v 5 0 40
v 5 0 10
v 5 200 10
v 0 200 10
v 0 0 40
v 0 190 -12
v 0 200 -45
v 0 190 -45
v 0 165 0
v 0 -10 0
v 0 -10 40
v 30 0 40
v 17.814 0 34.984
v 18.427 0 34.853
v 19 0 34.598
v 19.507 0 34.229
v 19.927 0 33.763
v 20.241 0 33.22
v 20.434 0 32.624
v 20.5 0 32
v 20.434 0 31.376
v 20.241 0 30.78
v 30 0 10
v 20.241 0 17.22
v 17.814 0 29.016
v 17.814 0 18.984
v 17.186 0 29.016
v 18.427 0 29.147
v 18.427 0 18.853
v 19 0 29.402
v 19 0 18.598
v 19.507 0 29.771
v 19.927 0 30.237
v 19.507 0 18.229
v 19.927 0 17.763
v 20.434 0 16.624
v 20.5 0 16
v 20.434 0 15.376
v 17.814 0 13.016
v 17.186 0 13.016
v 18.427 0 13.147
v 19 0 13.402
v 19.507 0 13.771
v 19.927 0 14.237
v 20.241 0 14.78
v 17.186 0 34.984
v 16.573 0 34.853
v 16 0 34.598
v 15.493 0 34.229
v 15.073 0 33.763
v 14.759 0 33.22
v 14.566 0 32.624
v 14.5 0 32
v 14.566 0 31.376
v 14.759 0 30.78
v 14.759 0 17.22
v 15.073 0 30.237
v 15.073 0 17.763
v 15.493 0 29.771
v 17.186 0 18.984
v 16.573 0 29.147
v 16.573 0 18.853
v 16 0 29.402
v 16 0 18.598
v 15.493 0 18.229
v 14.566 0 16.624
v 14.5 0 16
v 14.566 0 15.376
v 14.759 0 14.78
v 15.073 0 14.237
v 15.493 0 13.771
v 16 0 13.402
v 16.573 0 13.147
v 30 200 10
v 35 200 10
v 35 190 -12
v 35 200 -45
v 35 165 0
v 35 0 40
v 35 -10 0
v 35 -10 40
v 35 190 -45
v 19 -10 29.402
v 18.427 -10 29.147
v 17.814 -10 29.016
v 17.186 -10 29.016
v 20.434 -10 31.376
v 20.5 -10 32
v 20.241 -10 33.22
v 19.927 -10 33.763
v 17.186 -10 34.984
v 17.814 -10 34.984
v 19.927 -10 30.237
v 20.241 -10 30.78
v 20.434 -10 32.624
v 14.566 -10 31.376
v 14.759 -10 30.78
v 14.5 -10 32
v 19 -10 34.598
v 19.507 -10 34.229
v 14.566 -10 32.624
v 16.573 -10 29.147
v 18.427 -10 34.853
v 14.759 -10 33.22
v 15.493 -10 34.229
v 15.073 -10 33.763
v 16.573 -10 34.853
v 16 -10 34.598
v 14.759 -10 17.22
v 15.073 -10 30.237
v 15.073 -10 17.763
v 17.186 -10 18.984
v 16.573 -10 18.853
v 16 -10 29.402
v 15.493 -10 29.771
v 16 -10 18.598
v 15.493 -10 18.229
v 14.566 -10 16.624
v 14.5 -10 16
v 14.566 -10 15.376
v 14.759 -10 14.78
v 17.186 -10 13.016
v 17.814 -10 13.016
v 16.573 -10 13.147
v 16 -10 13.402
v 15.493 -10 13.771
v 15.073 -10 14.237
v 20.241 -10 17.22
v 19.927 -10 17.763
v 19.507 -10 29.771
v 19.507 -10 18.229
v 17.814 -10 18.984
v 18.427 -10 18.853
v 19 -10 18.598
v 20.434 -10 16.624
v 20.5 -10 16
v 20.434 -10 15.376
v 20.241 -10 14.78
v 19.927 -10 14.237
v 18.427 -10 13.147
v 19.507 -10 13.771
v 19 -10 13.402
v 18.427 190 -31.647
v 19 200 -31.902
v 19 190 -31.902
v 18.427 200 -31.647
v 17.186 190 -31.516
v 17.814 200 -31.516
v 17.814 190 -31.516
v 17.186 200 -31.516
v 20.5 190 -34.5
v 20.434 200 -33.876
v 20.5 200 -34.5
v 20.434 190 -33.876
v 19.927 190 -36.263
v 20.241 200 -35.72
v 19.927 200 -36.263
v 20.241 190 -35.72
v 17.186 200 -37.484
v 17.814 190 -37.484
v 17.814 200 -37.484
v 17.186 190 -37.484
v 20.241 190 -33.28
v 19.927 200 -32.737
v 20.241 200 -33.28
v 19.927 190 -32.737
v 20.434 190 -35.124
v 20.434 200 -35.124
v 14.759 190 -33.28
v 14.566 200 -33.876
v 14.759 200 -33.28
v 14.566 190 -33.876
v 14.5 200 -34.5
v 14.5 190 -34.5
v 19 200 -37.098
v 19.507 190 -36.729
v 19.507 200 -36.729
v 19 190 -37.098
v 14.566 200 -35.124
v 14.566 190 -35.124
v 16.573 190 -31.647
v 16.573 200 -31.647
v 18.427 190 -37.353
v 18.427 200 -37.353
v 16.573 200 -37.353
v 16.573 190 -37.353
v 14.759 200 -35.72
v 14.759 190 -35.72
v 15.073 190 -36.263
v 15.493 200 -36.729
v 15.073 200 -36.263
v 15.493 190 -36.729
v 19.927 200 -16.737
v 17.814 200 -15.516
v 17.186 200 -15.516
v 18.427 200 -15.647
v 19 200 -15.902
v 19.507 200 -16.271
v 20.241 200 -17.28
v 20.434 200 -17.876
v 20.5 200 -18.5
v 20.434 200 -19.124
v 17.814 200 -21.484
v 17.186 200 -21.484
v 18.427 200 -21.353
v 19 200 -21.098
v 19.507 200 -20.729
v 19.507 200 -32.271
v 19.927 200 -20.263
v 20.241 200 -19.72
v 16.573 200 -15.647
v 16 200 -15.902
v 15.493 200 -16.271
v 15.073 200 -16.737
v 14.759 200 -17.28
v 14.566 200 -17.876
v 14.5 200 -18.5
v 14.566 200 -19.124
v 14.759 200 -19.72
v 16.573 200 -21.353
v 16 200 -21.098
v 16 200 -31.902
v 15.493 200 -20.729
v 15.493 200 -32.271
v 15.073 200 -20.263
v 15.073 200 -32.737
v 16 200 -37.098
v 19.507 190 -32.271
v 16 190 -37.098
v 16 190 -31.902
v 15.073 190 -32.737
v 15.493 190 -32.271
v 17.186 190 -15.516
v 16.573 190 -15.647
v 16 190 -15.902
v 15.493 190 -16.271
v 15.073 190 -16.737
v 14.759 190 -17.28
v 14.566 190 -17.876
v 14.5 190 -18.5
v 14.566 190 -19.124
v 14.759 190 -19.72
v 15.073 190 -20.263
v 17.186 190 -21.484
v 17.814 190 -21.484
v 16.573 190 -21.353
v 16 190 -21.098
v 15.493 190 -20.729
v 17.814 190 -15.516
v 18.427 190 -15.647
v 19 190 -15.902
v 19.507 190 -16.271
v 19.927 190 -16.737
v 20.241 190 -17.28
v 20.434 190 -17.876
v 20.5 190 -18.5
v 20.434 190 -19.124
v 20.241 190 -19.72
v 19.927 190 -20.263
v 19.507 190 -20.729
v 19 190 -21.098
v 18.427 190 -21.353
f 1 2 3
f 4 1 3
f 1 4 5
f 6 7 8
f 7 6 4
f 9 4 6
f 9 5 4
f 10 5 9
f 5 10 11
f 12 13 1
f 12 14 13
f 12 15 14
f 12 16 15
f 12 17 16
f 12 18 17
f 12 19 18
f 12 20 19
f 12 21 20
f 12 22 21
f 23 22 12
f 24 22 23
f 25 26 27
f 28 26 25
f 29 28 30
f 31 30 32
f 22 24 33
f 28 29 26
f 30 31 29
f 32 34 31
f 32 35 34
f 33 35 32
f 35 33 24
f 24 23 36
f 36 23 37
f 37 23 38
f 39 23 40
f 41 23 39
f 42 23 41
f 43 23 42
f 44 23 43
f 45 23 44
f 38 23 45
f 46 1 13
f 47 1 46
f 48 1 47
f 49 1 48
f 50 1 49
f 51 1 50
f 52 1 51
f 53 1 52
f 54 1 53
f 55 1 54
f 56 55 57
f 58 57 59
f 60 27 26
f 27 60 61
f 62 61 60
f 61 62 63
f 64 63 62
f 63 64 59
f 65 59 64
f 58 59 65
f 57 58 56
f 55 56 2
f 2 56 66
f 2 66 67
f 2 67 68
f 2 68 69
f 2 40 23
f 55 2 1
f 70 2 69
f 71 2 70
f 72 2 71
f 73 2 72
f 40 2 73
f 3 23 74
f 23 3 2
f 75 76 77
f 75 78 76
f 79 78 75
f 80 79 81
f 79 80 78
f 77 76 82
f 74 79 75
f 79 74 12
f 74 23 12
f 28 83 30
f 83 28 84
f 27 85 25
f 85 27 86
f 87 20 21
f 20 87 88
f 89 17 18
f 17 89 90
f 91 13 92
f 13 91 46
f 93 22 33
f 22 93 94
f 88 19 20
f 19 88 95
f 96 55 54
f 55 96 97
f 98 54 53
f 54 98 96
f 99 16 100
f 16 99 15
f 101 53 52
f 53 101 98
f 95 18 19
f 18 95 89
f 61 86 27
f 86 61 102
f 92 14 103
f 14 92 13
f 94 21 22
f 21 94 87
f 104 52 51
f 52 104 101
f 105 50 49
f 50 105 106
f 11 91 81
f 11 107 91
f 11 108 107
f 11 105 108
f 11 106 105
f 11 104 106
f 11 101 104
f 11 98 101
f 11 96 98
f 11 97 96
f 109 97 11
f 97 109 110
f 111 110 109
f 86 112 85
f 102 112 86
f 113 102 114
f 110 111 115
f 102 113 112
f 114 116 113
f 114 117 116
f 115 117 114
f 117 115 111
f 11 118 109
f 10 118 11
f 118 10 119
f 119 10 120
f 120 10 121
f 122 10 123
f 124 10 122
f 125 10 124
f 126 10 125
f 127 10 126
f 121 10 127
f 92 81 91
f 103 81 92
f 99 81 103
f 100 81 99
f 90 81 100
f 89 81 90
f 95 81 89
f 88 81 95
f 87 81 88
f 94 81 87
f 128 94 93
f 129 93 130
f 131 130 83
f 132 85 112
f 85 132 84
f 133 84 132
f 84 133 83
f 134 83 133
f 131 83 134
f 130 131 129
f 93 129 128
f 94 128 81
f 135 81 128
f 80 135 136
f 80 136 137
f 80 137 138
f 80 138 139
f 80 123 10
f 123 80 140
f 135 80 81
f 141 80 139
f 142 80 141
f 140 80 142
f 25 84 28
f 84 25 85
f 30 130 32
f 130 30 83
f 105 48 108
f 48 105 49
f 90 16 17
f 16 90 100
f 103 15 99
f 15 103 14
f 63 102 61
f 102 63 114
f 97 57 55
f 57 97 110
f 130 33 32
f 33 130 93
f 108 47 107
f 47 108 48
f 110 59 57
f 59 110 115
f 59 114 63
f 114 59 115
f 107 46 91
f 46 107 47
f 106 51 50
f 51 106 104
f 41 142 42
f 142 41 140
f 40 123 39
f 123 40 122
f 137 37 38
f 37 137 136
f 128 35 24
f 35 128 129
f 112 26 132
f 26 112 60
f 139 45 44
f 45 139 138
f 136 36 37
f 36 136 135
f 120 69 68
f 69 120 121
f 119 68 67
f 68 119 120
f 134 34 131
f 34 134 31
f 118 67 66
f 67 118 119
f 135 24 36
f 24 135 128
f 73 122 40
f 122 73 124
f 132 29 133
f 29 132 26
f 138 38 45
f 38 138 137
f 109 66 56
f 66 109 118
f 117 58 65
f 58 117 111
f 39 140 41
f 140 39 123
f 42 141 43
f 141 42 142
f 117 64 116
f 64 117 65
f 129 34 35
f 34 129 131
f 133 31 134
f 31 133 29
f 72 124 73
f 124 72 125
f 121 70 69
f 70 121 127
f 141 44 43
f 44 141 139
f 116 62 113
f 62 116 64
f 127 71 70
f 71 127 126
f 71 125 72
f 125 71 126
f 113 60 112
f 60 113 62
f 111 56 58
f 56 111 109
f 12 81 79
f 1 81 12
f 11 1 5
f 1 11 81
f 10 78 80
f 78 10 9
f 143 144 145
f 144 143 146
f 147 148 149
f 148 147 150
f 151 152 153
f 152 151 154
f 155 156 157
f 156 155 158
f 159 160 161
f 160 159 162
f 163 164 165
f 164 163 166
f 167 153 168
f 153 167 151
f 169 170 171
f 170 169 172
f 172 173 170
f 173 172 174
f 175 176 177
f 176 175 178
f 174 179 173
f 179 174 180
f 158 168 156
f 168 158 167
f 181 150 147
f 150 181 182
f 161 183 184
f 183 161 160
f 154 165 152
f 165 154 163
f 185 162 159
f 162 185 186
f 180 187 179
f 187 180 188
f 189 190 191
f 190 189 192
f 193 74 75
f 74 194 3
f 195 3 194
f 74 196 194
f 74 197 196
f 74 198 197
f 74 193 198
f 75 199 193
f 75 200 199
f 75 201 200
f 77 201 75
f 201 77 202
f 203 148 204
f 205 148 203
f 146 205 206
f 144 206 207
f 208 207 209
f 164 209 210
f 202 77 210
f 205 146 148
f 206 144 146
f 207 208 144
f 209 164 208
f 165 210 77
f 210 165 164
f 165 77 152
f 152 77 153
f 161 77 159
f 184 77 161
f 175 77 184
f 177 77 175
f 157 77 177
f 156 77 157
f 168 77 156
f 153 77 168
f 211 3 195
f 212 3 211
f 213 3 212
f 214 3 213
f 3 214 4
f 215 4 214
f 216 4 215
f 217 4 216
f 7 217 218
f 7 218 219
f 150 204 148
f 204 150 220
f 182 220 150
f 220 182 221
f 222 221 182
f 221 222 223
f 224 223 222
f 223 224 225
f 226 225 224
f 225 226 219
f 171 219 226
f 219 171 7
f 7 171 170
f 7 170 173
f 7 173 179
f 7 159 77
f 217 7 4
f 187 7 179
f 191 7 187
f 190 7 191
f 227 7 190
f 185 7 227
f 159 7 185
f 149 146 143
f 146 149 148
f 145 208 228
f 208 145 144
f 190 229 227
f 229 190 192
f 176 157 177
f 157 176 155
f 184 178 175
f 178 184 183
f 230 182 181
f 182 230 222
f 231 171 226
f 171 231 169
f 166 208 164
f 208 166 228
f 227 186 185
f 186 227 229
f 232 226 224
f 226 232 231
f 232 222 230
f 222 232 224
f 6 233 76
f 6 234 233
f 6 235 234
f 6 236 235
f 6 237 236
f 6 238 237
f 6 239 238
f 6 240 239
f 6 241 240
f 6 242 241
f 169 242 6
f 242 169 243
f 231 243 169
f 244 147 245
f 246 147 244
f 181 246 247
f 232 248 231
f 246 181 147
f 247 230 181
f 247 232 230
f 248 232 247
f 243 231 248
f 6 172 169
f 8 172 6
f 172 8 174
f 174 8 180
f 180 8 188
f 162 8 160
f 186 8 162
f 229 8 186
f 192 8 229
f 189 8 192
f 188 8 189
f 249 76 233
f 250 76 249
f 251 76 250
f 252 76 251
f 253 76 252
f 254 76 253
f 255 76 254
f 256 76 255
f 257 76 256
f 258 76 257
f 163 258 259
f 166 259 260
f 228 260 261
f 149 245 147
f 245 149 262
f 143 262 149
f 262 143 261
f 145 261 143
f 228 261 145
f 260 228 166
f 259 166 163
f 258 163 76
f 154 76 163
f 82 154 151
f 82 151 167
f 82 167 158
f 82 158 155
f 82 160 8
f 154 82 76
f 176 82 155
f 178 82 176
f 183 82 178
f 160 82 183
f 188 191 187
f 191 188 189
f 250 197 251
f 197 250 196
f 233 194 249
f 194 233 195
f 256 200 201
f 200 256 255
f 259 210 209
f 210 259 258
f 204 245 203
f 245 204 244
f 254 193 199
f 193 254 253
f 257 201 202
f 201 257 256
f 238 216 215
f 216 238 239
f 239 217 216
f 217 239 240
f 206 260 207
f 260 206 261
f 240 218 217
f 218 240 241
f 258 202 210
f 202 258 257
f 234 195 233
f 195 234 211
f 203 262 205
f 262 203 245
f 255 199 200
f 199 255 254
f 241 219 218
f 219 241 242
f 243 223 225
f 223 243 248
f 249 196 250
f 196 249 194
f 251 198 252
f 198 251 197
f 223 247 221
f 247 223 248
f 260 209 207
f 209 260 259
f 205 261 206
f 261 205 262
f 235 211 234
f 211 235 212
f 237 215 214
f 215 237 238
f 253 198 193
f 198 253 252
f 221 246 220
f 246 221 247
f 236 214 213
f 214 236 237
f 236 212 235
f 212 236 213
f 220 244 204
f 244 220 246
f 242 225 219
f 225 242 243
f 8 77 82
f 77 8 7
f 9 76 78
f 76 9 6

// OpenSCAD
lunghezza_globale = 210;
larghezza_globale = 35;
spessore_globale = 10;

// blocco aggancio scrivania
lunghezza_blocco_scrivania = spessore_globale;
altezza_blocco_scrivania = 30 + spessore_globale;
larghezza_blocco_scrivania = larghezza_globale;
raggio_foro_blocco_scrivania = 3;
distanza_foro_blocco_scrivania = altezza_blocco_scrivania / 2 + 4;

// blocco principale
spessore_blocco_principale = spessore_globale;
larghezza_blocco_principale = larghezza_globale;
lunghezza_blocco_principale = lunghezza_globale - lunghezza_blocco_scrivania;

// sostegni
altezza_sostegno = altezza_blocco_scrivania - spessore_globale;
lunghezza_sostegno = (larghezza_globale > 20) ? lunghezza_blocco_principale : lunghezza_globale/2;
spessore_sostegno = 5;
distanza_sostegno_dal_piano = spessore_blocco_principale;
distanza_primo_sostegno = spessore_sostegno;
distanza_secondo_sostegno = larghezza_blocco_principale;

// blocco computer
altezza_blocco_computer = 45;
larghezza_blocco_computer = larghezza_globale;
spessore_blocco_computer = spessore_globale;
distanza_blocco_computer = lunghezza_blocco_principale - spessore_blocco_computer;
distanza_foro_blocco_computer = altezza_blocco_computer / 2 + 4;

/* MODULI */

module plate(length, width, thickness, hole_radius = 0, hole_distance = 0, number_of_holes = 1) {
    if (hole_radius == 0) {
        cube([length, width, thickness ]);
    } else {
    
        difference() {
        
            
            cube([length, width, thickness]);
            
            if (number_of_holes > 1) {
                distanza_due_fori = 8;
                
                translate([length/2, hole_distance + distanza_due_fori, 0]) {
                    cylinder(r = hole_radius, h = thickness, $fn = 30);
                }
                
                translate([length/2, hole_distance - distanza_due_fori, 0]) {
                    cylinder(r = hole_radius, h = thickness, $fn = 30);
                }
            } else {
                translate([length/2, hole_distance, 0]) {
                    cylinder(r = hole_radius, h = thickness, $fn = 30);
                }
            }

        }
    }
}

// base, altezza, profondità
module triangle(o_len, a_len, depth, center=false)
{
    centroid = center ? [-a_len / 3, -o_len / 3, -depth / 2] : [0, 0, 0];
    translate(centroid) linear_extrude(height=depth)
    {
        polygon(points=[[0, 0],[a_len, 0],[0, o_len]], paths=[[0, 1, 2]]);
    }
}

/* COMPOSIZIONE */

// blocco principale
color("Pink", 1.0) {
    plate(larghezza_blocco_principale, lunghezza_blocco_principale, spessore_blocco_principale);
}

color("Red", 1.0) { 
    rotate(a = 90, v = [1, 0, 0]) plate(larghezza_blocco_scrivania, altezza_blocco_scrivania, lunghezza_blocco_scrivania, raggio_foro_blocco_scrivania, distanza_foro_blocco_scrivania, 2);
}

color("Orange", 1.0) {
    // sostegno 1
    translate([distanza_primo_sostegno, 0, distanza_sostegno_dal_piano]) rotate(a = 270, v = [0, 1, 0]) triangle(lunghezza_sostegno, altezza_sostegno, spessore_sostegno);
    
    //sostegno 2
    translate([distanza_secondo_sostegno, 0, distanza_sostegno_dal_piano]) rotate(a = 270, v = [0, 1, 0]) triangle(lunghezza_sostegno, altezza_sostegno, spessore_sostegno);
}

color("Green", 1.0) {
    translate([0, distanza_blocco_computer, 0]) rotate(a = 270, v = [1, 0, 0]) plate(larghezza_blocco_computer, altezza_blocco_computer, spessore_blocco_computer, raggio_foro_blocco_scrivania, distanza_foro_blocco_computer, 2);
}
if (altezza_blocco_computer > 28) {
    color("Violet", 1.0) {
            translate([0, lunghezza_blocco_principale - spessore_blocco_computer, 0]) rotate(a = 270, v = [1, 0, 0]) { rotate(a = 90, v = [0, 1, 0]) triangle(12, 25, larghezza_globale);
    }
}
}
